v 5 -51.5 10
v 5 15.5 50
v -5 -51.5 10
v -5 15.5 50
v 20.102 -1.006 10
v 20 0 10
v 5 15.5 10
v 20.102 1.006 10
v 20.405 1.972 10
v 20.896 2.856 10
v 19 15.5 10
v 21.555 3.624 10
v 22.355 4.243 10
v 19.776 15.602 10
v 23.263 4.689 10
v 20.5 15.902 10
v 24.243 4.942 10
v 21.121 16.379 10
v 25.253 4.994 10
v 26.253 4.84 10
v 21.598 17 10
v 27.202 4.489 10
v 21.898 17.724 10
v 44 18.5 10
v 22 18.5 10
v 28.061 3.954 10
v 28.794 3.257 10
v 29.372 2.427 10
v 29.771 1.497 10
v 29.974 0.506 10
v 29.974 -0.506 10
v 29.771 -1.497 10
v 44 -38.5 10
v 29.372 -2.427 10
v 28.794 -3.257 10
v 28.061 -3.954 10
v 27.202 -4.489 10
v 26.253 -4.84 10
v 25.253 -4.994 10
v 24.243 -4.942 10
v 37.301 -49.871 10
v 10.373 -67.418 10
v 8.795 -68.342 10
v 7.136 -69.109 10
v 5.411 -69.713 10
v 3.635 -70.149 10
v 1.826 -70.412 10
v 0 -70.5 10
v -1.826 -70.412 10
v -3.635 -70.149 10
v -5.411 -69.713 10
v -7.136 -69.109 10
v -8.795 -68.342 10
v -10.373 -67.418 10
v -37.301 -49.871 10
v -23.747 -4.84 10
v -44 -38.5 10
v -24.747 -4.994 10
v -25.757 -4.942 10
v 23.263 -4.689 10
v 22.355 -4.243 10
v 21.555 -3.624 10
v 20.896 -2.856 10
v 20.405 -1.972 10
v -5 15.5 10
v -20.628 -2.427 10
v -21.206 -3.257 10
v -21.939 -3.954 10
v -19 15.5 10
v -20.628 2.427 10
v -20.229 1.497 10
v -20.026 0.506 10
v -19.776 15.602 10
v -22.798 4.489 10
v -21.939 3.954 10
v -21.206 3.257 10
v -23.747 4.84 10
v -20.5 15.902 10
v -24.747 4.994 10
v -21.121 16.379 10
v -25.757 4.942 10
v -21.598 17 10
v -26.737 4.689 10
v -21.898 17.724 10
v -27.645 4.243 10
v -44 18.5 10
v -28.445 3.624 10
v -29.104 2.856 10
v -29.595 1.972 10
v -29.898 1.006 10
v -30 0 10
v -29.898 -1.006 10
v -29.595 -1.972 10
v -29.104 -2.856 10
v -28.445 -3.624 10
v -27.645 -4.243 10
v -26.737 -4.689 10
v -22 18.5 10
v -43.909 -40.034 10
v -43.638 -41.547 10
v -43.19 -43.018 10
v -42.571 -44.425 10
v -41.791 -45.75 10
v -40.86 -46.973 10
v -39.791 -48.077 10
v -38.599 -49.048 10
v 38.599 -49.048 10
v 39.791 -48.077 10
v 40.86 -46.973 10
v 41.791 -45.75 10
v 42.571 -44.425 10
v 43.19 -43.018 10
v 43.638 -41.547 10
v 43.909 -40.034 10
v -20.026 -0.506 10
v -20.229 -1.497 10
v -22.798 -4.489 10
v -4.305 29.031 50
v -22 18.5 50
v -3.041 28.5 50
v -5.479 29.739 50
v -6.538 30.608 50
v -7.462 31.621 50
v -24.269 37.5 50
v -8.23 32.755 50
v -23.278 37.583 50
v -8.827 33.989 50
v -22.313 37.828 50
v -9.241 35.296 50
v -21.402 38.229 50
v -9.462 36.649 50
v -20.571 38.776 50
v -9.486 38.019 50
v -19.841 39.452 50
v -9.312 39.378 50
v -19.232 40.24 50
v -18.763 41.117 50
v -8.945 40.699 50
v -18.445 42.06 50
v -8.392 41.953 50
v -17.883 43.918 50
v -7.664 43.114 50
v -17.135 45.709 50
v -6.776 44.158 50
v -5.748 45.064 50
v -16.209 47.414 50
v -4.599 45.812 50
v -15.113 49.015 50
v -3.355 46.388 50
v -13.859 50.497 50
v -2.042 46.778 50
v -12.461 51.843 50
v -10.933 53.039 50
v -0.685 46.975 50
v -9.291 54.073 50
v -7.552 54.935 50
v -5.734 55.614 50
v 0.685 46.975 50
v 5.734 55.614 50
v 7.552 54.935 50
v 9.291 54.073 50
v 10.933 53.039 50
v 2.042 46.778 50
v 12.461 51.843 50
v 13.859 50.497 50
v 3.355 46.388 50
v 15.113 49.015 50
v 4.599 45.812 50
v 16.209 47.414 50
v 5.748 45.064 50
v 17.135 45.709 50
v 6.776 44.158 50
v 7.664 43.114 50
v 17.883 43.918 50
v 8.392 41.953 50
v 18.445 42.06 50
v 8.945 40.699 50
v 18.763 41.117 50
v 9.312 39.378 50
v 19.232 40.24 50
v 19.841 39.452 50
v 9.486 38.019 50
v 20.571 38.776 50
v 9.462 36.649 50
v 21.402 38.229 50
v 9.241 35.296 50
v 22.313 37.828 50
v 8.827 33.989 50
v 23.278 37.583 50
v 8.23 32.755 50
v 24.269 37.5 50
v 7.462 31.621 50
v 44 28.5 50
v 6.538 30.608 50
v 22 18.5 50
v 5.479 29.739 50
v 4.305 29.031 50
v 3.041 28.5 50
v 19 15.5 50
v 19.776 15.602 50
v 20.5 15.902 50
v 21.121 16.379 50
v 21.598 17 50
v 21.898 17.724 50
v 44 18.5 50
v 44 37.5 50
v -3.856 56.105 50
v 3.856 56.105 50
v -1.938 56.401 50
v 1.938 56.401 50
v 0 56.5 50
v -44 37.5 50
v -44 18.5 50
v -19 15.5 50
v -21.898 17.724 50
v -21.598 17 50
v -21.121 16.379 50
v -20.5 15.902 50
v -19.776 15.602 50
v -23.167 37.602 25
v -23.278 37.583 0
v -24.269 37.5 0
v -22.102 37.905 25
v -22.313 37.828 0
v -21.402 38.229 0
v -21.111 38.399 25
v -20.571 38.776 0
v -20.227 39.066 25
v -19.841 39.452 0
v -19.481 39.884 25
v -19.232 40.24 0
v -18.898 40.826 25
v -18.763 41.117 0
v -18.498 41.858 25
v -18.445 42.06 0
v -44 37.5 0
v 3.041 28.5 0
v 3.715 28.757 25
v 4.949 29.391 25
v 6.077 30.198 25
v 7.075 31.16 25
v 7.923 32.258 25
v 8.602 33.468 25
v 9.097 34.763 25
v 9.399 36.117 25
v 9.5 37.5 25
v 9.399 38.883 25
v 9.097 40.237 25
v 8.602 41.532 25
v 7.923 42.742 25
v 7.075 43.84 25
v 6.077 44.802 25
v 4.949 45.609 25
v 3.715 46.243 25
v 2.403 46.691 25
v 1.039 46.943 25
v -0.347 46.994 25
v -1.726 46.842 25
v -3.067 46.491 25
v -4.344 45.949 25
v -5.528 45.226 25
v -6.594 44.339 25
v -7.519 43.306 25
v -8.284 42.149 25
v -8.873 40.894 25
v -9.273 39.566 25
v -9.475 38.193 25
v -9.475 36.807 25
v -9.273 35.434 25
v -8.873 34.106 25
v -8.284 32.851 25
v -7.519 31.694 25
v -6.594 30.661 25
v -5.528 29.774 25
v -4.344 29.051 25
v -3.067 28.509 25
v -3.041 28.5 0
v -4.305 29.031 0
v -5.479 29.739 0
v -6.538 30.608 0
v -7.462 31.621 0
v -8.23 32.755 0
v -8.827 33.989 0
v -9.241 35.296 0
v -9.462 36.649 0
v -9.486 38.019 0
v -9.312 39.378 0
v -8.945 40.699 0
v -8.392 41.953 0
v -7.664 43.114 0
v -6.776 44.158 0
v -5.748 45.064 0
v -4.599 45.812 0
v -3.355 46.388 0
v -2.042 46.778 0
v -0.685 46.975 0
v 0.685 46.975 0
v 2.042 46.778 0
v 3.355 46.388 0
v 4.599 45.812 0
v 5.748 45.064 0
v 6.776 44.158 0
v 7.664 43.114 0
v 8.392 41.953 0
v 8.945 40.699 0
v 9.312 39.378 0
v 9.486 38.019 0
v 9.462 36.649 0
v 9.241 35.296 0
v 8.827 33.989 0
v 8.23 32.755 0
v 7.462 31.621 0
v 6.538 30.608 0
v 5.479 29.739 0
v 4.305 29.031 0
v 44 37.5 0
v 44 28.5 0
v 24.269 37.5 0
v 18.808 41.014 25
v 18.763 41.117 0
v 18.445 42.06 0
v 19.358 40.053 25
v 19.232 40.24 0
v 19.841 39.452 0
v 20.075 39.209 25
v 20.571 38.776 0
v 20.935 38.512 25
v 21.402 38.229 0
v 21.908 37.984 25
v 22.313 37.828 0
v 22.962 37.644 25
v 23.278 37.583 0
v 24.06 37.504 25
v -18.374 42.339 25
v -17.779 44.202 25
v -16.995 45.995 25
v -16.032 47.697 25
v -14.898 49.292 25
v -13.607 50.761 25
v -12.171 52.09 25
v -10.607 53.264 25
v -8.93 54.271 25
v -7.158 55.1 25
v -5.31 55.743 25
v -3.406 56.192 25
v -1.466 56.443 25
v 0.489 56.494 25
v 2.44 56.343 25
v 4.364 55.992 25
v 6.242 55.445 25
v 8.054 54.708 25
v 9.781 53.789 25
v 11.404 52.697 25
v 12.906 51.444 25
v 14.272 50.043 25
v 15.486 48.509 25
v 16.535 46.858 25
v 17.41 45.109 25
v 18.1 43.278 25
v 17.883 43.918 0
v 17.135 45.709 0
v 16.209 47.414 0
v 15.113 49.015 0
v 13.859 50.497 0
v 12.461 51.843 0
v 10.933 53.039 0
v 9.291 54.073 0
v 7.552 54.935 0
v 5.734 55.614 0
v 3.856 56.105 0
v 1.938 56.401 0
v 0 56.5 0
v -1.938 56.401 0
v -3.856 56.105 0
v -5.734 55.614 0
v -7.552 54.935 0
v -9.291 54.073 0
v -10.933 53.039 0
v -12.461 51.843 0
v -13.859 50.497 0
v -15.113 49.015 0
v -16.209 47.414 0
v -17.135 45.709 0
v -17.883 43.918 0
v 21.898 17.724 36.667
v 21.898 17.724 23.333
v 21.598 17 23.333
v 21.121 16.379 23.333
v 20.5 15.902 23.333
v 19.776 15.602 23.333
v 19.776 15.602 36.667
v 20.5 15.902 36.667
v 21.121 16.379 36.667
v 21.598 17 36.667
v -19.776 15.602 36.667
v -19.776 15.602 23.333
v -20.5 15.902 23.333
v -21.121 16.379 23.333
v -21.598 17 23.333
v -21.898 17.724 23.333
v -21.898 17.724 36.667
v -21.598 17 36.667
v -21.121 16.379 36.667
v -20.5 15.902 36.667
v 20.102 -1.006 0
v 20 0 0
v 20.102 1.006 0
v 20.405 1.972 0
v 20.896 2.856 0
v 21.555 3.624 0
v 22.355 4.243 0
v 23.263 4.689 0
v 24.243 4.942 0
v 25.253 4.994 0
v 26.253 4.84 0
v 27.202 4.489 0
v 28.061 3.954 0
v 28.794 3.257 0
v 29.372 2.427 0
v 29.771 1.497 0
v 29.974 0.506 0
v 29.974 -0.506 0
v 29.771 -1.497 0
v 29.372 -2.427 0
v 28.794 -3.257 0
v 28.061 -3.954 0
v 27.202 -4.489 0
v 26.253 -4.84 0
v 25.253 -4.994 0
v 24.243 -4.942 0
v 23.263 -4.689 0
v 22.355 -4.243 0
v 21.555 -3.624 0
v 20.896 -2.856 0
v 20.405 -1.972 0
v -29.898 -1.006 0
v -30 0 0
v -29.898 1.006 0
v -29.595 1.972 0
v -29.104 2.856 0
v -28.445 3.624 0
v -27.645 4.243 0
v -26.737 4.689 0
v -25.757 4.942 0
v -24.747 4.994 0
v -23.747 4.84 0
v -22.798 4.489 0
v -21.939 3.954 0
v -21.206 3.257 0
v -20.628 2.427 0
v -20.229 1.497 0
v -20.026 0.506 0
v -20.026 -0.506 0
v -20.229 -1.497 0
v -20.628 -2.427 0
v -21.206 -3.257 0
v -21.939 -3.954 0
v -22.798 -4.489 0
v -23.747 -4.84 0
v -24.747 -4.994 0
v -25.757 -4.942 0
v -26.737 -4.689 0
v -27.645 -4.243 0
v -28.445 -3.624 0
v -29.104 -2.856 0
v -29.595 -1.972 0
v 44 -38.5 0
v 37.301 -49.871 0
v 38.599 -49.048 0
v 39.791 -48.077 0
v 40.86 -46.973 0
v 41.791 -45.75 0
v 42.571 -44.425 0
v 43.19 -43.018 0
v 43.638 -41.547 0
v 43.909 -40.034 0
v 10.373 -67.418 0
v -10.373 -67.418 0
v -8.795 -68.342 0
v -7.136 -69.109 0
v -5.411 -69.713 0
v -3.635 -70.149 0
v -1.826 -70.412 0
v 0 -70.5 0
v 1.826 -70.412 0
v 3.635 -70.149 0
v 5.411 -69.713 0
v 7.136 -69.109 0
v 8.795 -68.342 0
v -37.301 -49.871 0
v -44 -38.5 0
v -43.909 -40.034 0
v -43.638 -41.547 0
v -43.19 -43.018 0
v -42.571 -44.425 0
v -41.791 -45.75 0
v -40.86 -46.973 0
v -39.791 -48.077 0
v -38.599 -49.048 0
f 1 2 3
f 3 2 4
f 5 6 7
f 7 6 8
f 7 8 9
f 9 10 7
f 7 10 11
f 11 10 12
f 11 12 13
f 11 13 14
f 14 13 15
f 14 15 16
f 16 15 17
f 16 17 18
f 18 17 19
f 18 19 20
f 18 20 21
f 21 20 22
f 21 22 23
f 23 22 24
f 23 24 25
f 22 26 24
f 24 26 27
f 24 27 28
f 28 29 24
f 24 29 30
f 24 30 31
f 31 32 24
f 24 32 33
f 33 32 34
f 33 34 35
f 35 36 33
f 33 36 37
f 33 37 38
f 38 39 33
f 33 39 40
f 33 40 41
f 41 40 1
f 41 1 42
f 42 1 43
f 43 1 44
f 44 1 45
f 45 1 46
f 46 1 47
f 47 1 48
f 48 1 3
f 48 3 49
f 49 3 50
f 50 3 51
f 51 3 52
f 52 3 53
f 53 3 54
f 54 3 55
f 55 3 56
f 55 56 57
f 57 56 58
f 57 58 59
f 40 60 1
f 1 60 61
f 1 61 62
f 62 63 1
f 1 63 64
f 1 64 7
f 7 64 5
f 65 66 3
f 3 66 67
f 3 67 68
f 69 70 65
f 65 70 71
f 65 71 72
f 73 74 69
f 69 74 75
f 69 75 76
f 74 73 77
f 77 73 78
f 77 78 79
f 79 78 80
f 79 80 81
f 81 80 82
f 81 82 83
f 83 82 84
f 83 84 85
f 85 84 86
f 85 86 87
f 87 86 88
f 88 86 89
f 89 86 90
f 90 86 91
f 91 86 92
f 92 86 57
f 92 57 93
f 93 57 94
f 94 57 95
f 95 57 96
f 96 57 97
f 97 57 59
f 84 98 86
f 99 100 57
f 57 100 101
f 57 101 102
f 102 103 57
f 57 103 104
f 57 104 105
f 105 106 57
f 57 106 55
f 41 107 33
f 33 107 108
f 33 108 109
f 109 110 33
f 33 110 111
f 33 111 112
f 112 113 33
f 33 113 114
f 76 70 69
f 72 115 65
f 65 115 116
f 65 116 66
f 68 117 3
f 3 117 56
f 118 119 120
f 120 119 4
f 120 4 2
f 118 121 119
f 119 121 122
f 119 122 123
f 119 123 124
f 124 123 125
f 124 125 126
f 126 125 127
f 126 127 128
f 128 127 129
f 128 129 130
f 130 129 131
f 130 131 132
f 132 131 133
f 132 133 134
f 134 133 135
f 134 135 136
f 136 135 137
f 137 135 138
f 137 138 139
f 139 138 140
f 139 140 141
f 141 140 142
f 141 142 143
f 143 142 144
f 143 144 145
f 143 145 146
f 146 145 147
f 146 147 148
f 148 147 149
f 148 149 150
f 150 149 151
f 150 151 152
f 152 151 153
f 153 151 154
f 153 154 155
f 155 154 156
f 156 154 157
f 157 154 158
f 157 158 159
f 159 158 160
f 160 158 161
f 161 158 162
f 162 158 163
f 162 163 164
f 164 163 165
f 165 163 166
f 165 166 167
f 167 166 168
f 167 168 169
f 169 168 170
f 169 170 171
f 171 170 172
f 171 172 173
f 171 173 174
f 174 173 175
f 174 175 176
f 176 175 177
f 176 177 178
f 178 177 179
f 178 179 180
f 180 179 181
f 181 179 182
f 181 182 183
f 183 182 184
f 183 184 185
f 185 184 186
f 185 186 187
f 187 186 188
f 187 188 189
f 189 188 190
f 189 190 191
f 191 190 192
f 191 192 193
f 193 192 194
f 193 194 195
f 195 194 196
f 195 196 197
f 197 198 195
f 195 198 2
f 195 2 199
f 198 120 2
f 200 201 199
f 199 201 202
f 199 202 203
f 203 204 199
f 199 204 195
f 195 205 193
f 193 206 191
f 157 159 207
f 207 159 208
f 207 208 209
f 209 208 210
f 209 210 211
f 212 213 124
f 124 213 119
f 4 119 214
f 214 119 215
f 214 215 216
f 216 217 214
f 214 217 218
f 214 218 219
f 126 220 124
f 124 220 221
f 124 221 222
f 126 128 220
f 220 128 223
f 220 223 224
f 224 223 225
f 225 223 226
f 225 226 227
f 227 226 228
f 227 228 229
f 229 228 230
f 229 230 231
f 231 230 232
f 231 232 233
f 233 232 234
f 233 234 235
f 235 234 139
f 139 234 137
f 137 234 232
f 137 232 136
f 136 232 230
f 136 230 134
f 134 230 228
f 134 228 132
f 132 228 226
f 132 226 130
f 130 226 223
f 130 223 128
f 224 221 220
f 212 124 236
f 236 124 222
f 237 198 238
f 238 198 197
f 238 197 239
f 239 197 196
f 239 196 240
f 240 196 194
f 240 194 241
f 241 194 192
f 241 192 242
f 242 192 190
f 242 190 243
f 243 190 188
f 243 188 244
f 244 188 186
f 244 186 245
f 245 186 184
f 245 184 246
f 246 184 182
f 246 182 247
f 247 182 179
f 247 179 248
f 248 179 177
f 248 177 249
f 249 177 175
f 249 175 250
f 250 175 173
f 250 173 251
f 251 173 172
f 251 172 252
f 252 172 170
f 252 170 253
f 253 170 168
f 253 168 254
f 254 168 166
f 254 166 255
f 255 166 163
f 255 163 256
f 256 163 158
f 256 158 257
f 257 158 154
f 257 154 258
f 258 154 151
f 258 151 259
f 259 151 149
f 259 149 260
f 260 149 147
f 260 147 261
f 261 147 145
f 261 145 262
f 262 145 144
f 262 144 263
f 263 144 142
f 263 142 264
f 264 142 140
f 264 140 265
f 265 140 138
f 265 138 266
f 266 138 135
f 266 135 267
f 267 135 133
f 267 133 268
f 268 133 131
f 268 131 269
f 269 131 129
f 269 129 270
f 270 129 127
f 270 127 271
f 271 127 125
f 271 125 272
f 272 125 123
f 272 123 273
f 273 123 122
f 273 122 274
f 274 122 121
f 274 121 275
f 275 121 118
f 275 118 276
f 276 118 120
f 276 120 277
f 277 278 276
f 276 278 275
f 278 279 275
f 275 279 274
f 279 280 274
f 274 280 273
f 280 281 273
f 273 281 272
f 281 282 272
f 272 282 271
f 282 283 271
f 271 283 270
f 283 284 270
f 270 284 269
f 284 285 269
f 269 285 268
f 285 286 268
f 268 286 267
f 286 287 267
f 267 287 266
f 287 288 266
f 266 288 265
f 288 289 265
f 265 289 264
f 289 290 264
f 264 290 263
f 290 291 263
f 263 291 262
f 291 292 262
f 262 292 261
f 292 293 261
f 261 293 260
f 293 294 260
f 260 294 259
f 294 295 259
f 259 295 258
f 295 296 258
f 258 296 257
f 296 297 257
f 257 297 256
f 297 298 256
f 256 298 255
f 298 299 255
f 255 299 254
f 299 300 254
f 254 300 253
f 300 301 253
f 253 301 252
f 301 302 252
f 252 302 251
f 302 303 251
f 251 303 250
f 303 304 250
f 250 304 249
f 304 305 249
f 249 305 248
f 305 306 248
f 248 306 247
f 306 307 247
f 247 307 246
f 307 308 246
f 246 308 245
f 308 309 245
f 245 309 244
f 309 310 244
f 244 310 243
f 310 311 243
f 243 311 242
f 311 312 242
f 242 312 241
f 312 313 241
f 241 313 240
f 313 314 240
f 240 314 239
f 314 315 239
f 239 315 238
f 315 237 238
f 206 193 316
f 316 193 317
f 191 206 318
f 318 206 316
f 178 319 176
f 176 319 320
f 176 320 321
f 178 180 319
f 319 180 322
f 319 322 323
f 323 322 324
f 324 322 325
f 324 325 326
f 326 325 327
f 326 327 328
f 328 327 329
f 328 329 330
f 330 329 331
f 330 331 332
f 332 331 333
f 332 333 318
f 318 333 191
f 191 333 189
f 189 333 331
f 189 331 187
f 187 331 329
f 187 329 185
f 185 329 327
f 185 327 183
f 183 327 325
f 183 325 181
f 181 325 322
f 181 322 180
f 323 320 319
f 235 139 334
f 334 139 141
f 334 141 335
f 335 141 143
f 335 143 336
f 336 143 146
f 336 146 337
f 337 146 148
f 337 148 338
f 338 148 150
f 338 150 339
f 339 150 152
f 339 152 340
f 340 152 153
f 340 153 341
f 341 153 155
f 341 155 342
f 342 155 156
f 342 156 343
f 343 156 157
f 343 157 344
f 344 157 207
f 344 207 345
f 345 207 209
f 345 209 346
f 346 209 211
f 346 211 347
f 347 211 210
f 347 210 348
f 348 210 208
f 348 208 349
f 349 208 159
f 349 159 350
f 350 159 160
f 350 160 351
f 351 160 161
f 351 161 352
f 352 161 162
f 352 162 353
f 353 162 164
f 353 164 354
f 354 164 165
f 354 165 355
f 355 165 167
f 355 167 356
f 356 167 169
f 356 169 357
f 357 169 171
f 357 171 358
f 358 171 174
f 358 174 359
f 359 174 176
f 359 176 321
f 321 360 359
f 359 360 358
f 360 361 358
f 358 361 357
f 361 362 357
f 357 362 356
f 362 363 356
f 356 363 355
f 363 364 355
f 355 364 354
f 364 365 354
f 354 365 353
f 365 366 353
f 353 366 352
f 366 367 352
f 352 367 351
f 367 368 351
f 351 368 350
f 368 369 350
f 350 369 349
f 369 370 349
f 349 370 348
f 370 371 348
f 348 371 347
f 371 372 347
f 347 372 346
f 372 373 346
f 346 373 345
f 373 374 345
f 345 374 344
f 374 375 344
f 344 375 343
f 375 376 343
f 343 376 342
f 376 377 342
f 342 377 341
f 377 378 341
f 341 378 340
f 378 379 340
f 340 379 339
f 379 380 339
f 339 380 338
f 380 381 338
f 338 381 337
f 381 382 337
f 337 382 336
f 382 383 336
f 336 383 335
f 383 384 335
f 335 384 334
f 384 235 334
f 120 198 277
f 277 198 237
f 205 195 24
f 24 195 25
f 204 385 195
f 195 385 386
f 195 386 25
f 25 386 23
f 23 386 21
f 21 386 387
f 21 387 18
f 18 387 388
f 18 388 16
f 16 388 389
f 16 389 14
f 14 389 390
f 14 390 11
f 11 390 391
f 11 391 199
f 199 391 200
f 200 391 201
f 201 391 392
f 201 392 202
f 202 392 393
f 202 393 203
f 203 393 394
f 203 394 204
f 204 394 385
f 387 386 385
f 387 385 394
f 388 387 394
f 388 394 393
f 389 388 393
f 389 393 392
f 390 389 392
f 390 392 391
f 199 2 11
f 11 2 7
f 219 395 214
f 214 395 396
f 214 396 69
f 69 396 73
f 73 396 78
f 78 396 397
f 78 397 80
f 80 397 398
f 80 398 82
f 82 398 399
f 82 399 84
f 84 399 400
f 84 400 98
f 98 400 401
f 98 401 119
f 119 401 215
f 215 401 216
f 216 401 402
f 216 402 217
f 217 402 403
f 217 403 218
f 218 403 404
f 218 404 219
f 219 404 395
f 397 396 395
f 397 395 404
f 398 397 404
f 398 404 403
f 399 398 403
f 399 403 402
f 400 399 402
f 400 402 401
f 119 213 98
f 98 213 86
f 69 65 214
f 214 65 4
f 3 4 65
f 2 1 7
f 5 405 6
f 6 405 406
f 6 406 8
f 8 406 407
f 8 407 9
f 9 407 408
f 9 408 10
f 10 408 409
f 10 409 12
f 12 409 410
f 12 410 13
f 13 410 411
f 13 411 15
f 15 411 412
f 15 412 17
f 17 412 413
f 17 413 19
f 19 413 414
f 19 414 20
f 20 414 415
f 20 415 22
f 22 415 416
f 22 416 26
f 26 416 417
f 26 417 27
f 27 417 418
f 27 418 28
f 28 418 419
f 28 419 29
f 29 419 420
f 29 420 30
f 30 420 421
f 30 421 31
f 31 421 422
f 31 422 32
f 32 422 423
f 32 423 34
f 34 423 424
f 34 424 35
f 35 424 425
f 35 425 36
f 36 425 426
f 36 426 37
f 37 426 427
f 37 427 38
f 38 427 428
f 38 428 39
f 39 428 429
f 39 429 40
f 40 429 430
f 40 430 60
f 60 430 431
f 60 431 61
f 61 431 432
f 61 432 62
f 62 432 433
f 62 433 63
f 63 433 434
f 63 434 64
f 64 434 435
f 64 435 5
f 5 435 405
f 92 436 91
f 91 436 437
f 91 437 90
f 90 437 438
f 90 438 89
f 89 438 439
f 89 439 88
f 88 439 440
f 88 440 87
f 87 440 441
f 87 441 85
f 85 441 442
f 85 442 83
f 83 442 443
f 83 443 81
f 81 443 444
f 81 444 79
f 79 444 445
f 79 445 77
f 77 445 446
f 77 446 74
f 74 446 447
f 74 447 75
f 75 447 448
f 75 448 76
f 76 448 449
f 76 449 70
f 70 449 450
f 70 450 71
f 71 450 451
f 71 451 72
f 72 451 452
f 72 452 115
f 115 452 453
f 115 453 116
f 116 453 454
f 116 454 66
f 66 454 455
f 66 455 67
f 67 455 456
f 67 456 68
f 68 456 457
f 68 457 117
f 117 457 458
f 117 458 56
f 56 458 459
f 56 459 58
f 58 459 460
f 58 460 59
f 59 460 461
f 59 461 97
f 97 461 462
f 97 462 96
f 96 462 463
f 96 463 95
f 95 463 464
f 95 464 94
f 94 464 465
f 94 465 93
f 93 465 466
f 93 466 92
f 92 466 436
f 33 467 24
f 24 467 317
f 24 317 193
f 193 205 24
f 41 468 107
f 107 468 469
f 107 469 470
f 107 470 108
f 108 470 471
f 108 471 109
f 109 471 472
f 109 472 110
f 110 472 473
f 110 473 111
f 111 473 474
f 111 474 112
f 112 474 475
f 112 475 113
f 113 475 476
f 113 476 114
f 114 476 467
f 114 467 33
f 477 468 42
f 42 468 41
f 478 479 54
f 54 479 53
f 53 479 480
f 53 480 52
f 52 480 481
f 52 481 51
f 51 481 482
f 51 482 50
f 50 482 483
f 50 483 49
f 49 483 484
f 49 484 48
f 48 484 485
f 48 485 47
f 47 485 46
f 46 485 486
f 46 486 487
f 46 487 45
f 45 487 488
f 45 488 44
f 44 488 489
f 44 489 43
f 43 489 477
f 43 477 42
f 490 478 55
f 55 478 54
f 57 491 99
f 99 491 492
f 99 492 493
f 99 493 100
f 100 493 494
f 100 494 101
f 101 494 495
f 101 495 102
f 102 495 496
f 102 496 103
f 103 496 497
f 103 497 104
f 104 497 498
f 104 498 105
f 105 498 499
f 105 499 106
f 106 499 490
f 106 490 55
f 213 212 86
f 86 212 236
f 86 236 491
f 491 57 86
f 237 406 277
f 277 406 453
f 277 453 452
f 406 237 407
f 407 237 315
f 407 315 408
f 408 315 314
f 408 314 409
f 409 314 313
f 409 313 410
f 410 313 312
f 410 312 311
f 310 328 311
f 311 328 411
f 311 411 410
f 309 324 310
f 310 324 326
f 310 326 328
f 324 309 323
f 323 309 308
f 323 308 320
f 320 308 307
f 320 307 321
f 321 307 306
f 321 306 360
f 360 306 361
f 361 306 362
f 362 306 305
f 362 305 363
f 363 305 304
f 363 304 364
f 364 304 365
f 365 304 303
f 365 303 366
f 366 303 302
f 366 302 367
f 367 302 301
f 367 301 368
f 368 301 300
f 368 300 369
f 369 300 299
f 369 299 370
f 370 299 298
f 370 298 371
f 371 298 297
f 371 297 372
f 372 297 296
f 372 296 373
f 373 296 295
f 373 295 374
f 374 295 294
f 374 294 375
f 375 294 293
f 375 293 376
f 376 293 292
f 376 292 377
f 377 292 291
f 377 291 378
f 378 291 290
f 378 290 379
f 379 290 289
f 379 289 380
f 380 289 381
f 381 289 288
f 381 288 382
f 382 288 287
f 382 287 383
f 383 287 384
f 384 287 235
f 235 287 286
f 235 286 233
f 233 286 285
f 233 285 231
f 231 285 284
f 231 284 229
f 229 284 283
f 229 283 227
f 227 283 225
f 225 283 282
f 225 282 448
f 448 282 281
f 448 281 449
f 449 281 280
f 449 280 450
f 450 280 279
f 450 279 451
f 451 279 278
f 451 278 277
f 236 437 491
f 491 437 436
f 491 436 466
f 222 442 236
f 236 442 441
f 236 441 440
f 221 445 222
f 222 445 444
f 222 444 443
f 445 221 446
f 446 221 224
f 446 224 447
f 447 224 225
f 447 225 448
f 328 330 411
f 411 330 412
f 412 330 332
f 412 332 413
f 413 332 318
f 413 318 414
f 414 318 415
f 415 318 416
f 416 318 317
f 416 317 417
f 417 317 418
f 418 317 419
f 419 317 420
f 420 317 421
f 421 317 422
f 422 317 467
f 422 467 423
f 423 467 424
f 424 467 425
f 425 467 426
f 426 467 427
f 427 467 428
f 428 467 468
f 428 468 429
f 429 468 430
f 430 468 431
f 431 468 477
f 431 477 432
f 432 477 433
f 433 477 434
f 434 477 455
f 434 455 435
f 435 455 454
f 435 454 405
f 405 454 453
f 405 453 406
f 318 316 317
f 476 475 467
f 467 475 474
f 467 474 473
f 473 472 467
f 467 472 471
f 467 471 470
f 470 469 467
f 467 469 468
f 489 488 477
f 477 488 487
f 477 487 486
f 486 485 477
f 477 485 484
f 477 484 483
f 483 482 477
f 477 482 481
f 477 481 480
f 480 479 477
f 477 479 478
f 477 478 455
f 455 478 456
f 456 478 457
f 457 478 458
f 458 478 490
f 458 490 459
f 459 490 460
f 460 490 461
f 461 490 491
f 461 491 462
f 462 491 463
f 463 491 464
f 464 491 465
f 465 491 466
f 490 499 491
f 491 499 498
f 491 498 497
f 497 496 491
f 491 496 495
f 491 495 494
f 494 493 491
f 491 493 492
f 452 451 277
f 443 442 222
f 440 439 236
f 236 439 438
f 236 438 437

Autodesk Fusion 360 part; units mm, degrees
sketch "Sketch1" plane through (0, 0, 0) normal (0, 0, 1) x (1, 0, 0)
  line L0 (-44, 15.5) -> (44, 15.5)
  line L1 (44, 15.5) -> (44, -15.5)
  line L2 (-44, -15.5) -> (-44, 15.5)
  line L3 (-44, 15.5) -> (44, -15.5) construction
  line L4 (44, 15.5) -> (-44, -15.5) construction
  circle A0 centre (-25, 0) radius 5
  circle A1 centre (25, 0) radius 5
  line L5 (-44, -15.5) -> (-44, -38.5)
  line L6 (44, -38.5) -> (44, -15.5)
  line L7 (-44, 15.5) -> (44, 15.5)
  line L8 (44, 15.5) -> (44, 28.5)
  line L9 (44, 28.5) -> (-44, 28.5)
  line L10 (-44, 28.5) -> (-44, 15.5)
  line L11 (0, -51.5) -> (-5, -51.5)
  line L12 (0, -51.5) -> (5, -51.5)
  line L13 (-5, -51.5) -> (-5, 15.5)
  line L14 (5, -51.5) -> (5, 15.5)
  line L15 (-37.3007, -49.8711) -> (-10.3733, -67.4184)
  line L16 (37.3007, -49.8711) -> (10.3733, -67.4184)
  arc A2 (-10.3733, -67.4184) -> (10.3733, -67.4184) centre (0, -51.5) ccw
  arc A3 (37.3007, -49.8711) -> (44, -38.5) centre (31, -38.5) ccw
  arc A4 (-44, -38.5) -> (-37.3007, -49.8711) centre (-31, -38.5) ccw
  dimension "d1" = 31
  dimension "d2" = 88
  dimension "d3" = 10
  dimension "d4" = 10
  dimension "d5" = 50
  dimension "d6" = 19
  dimension "d7" = 19
  dimension "d9" = 38
  dimension "d12" = 13
  dimension "d13" = 5
  dimension "d14" = 5
  dimension "d15" = 26
  dimension "d16" = 26
extrude "Extrude1" add sketch "Sketch1" along normal blind 10 contours L0 L1 L2 L5 L6 L7 L11 L12 L13 L14 L15 L16 A2 A3 A4
extrude "Extrude2" add sketch "Sketch1" along normal blind 50 contours L0 L7 L8 L9 L10
extrude "Extrude3" add sketch "Sketch1" along normal blind 50 contours L0 L7 L11 L12 L13 L14
sketch "Sketch2" plane through (0, 0, 50) normal (0, 0, 1) x (-1, 0, 0)
  line L0 (44, -28.5) -> (44, -15.5)
  line L1 (44, -15.5) -> (5, -15.5)
  line L2 (5, -15.5) -> (5, 51.5)
  line L3 (5, 51.5) -> (-5, 51.5)
  line L4 (-5, 51.5) -> (-5, -15.5)
  line L5 (-5, -15.5) -> (-44, -15.5)
  line L6 (-44, -15.5) -> (-44, -28.5)
  line L7 (-44, -28.5) -> (44, -28.5)
  circle A0 centre (19, -18.5) radius 3
  circle A1 centre (-19, -18.5) radius 3
  line L8 (19, -18.5) -> (44, -18.5)
  line L9 (-19, -18.5) -> (-44, -18.5)
  line L10 (44, -18.5) -> (44, -15.5)
  line L11 (19, -15.5) -> (19, -18.5)
  line L12 (-19, -18.5) -> (-19, -15.5)
  line L13 (-19, -18.5) -> (-19, -15.5)
  line L14 (-44, -15.5) -> (-44, -18.5)
  line L15 (44, -18.5) -> (44, -37.5)
  line L16 (44, -37.5) -> (-44, -37.5)
  line L17 (-44, -37.5) -> (-44, -18.5)
  circle A2 centre (0, -37.5) radius 9.5
  circle A3 centre (0, -37.5) radius 19
  arc A4 (24.2693, -37.5) -> (18.4447, -42.06) centre (24.2693, -43.5) ccw
  arc A5 (-18.4447, -42.06) -> (-24.2693, -37.5) centre (-24.2693, -43.5) ccw
  dimension "d23" = 6
  dimension "d24" = 6
  dimension "d25" = 38
  dimension "d26" = 25
  dimension "d31" = 19
  dimension "d32" = 19
  dimension "d33" = 38
  dimension "d35" = 12
  dimension "d36" = 12
extrude "Extrude4" cut sketch "Sketch2" against normal blind 40 contours L0 L1 A0 L8 L10
extrude "Extrude5" cut sketch "Sketch2" against normal blind 40 contours L5 L6 A1 L9 L14
sketch "Sketch3" plane through (0, 0, 50) normal (0, 0, 1) x (-1, 0, 0)
extrude "Extrude6" add sketch "Sketch2" against normal blind 50 contours L7 L15 L16 A3 | L7 L16 A2 A3 | L16 A2 A3 | L16 A3 A4 | L7 L16 L17 A3 | L7 L16 A2 A3 | L16 A3 A5
sketch "Sketch4" plane through (-5, 0, 0) normal (-1, 0, 0) x (0, -1, 0)
  line L0 (-15.5, 10) -> (51.5, 10)
  line L1 (51.5, 10) -> (51.5, 50)
  line L2 (51.5, 50) -> (-15.5, 50)
  line L3 (-15.5, 50) -> (-15.5, 10)
  line L4 (-15.5, 50) -> (51.5, 10)
extrude "Extrude7" cut sketch "Sketch4" against normal blind 85 contours L1 L2 L4
equation "d6 = ( ( 88 - 50 ) / 2 ) * 1 mm"
equation "d9 = ( 19 * 2 ) * 1 mm"
equation "d26 = ( ( 88 - 38 ) / 2 ) * 1 mm"
equation "d33 = ( 19 * 2 ) * 1 mm"
